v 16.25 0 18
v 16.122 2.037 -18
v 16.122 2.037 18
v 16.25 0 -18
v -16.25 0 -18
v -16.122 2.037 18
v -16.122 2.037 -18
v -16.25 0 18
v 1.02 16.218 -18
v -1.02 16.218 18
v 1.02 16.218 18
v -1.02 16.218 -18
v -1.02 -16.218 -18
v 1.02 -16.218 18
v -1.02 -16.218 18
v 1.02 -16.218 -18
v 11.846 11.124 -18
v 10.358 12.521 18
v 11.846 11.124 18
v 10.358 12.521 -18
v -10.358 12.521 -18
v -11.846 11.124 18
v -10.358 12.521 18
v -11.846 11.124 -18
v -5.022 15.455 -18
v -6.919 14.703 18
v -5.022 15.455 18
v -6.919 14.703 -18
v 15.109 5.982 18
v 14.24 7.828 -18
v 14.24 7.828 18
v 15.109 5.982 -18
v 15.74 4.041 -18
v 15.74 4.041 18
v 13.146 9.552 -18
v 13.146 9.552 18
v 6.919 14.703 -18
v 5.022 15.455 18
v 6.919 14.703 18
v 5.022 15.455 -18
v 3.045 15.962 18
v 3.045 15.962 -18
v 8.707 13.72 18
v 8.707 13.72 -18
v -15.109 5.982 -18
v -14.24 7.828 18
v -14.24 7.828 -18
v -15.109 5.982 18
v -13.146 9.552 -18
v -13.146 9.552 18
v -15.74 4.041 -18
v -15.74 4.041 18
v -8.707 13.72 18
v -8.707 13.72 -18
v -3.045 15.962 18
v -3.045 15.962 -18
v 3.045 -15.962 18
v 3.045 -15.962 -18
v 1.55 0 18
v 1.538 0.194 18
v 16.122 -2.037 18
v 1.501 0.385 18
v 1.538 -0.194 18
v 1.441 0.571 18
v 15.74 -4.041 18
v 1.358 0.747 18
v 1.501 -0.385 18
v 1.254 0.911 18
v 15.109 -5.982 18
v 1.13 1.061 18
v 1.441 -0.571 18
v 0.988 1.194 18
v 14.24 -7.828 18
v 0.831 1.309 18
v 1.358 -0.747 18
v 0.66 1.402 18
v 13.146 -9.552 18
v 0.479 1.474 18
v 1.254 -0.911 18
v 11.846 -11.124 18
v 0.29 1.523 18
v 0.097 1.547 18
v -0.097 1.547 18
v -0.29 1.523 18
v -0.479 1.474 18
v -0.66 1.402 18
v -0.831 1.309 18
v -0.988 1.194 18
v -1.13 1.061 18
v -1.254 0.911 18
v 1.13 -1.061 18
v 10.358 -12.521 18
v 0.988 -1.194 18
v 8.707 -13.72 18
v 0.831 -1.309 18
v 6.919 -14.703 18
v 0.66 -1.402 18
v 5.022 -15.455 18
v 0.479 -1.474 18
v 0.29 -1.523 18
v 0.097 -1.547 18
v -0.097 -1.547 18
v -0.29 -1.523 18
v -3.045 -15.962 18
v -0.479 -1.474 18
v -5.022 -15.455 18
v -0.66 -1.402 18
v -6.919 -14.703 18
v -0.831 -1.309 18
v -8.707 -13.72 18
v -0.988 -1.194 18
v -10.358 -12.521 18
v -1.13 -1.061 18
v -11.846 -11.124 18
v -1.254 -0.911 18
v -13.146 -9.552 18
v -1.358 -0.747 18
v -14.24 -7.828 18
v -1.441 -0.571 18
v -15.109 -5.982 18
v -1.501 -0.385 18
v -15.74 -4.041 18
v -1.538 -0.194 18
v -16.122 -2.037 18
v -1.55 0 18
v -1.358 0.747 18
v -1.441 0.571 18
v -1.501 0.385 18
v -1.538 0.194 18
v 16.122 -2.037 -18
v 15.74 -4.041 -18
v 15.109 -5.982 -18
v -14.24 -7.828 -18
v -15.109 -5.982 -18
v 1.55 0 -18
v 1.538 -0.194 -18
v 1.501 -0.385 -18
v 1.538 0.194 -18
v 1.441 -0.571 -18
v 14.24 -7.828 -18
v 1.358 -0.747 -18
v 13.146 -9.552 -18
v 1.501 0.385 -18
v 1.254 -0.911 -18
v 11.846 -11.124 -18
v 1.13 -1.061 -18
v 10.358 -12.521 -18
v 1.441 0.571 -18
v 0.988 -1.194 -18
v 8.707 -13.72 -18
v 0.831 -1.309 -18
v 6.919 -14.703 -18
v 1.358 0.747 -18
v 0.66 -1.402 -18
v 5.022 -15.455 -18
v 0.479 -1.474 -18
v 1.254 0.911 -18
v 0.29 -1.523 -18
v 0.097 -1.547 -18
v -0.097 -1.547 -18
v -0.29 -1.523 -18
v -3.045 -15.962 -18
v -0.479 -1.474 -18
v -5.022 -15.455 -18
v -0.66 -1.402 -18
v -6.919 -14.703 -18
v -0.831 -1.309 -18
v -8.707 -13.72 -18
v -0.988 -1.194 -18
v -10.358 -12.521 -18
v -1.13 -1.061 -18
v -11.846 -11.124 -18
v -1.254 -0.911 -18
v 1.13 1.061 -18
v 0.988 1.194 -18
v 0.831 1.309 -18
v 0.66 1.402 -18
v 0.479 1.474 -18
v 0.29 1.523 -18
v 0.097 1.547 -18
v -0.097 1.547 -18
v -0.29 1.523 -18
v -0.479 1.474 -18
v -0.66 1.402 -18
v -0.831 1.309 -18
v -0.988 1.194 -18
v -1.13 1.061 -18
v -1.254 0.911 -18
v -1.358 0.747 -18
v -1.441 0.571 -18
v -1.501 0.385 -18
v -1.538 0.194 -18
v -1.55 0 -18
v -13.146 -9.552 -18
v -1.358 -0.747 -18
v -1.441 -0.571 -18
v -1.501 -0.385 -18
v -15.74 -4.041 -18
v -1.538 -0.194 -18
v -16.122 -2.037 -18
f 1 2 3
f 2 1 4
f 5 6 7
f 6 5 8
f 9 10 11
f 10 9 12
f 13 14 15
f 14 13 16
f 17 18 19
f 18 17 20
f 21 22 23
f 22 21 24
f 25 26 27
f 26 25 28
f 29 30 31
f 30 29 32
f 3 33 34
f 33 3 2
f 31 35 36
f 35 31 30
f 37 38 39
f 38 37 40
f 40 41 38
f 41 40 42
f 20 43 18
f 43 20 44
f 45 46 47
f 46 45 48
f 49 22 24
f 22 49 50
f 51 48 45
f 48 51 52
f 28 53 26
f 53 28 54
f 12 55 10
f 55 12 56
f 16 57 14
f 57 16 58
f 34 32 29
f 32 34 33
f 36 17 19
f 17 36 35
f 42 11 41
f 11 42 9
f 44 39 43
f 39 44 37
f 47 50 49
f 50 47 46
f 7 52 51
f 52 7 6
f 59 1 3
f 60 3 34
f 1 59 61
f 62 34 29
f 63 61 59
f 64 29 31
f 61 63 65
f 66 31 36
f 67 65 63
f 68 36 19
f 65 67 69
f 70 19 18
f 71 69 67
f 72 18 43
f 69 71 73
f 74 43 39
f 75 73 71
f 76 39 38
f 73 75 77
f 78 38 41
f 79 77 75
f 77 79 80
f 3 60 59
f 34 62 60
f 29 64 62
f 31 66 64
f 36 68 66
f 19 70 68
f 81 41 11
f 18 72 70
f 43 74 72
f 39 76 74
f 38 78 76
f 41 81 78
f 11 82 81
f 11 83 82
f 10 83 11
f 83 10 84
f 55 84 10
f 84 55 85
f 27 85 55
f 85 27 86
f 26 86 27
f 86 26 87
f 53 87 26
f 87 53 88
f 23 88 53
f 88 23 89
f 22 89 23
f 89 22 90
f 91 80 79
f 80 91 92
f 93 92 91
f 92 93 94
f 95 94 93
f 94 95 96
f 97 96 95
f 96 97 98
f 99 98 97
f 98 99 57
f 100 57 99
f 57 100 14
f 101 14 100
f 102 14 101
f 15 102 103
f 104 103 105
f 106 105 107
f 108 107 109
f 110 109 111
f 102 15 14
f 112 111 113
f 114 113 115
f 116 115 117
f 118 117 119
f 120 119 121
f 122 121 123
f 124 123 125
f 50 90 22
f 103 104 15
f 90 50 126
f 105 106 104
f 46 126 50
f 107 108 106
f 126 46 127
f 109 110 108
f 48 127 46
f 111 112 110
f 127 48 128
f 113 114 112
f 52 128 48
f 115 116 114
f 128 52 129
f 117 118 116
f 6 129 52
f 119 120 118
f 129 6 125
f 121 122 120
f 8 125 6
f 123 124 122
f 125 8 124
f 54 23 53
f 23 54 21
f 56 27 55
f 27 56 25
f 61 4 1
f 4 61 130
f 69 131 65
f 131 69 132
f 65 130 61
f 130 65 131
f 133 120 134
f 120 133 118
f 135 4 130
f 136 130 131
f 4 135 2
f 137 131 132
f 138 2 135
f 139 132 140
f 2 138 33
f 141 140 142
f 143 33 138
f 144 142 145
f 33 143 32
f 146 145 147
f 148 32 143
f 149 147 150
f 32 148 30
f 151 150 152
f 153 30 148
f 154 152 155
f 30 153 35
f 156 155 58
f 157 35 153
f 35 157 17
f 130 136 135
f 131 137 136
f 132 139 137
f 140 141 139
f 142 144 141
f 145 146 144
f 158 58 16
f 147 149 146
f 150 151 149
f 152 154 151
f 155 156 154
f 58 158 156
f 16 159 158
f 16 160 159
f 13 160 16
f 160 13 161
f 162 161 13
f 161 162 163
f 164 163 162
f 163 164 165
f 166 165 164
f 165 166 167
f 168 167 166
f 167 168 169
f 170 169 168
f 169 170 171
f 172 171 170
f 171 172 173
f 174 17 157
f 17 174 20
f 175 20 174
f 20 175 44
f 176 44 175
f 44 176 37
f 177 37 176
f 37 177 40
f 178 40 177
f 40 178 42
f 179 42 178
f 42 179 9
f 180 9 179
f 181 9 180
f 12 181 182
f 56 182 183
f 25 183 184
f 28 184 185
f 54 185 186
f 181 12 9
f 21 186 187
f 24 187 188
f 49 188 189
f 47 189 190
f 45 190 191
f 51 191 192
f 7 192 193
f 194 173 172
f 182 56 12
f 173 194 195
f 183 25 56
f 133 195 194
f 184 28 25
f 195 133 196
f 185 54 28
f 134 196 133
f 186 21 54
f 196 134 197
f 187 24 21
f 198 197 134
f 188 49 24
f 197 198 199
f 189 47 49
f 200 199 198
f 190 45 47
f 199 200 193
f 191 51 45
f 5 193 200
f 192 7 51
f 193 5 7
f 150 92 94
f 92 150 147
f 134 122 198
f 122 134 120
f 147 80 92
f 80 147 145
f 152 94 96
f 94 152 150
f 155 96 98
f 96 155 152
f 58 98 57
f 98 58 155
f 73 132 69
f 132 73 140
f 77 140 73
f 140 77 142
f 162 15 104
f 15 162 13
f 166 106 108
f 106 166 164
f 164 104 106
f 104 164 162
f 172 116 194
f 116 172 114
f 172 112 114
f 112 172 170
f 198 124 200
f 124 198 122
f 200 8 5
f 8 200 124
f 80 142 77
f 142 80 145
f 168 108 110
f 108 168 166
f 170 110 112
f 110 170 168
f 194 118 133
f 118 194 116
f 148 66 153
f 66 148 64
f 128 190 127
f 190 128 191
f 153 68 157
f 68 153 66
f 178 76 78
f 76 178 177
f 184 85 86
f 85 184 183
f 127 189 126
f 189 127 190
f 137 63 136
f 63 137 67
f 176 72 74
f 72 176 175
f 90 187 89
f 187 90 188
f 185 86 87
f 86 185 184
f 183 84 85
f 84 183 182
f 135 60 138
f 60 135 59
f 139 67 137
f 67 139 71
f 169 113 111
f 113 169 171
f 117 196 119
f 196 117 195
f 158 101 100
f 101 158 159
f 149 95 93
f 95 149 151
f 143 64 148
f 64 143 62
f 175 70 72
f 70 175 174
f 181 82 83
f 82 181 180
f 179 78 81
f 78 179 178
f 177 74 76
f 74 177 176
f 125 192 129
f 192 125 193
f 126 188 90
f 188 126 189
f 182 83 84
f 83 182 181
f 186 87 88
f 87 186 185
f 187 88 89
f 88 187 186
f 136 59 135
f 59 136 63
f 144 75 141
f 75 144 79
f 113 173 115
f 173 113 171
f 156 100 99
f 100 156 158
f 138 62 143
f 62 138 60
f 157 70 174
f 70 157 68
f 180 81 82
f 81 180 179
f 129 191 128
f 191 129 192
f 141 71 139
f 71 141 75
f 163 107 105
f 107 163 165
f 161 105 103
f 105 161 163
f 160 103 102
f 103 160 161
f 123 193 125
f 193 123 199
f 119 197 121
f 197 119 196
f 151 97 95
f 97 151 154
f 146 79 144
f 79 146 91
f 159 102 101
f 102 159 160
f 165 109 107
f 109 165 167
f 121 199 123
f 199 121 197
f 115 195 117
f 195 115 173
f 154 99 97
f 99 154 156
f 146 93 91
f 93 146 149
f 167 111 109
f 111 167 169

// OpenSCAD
$fn = 50;


difference() {
	union() {
		translate(v = [0, 0, -18.0000000000]) {
			cylinder(h = 36, r = 16.2500000000);
		}
	}
	union() {
		translate(v = [0, 0, -100.0000000000]) {
			cylinder(h = 200, r = 1.5500000000);
		}
	}
}
